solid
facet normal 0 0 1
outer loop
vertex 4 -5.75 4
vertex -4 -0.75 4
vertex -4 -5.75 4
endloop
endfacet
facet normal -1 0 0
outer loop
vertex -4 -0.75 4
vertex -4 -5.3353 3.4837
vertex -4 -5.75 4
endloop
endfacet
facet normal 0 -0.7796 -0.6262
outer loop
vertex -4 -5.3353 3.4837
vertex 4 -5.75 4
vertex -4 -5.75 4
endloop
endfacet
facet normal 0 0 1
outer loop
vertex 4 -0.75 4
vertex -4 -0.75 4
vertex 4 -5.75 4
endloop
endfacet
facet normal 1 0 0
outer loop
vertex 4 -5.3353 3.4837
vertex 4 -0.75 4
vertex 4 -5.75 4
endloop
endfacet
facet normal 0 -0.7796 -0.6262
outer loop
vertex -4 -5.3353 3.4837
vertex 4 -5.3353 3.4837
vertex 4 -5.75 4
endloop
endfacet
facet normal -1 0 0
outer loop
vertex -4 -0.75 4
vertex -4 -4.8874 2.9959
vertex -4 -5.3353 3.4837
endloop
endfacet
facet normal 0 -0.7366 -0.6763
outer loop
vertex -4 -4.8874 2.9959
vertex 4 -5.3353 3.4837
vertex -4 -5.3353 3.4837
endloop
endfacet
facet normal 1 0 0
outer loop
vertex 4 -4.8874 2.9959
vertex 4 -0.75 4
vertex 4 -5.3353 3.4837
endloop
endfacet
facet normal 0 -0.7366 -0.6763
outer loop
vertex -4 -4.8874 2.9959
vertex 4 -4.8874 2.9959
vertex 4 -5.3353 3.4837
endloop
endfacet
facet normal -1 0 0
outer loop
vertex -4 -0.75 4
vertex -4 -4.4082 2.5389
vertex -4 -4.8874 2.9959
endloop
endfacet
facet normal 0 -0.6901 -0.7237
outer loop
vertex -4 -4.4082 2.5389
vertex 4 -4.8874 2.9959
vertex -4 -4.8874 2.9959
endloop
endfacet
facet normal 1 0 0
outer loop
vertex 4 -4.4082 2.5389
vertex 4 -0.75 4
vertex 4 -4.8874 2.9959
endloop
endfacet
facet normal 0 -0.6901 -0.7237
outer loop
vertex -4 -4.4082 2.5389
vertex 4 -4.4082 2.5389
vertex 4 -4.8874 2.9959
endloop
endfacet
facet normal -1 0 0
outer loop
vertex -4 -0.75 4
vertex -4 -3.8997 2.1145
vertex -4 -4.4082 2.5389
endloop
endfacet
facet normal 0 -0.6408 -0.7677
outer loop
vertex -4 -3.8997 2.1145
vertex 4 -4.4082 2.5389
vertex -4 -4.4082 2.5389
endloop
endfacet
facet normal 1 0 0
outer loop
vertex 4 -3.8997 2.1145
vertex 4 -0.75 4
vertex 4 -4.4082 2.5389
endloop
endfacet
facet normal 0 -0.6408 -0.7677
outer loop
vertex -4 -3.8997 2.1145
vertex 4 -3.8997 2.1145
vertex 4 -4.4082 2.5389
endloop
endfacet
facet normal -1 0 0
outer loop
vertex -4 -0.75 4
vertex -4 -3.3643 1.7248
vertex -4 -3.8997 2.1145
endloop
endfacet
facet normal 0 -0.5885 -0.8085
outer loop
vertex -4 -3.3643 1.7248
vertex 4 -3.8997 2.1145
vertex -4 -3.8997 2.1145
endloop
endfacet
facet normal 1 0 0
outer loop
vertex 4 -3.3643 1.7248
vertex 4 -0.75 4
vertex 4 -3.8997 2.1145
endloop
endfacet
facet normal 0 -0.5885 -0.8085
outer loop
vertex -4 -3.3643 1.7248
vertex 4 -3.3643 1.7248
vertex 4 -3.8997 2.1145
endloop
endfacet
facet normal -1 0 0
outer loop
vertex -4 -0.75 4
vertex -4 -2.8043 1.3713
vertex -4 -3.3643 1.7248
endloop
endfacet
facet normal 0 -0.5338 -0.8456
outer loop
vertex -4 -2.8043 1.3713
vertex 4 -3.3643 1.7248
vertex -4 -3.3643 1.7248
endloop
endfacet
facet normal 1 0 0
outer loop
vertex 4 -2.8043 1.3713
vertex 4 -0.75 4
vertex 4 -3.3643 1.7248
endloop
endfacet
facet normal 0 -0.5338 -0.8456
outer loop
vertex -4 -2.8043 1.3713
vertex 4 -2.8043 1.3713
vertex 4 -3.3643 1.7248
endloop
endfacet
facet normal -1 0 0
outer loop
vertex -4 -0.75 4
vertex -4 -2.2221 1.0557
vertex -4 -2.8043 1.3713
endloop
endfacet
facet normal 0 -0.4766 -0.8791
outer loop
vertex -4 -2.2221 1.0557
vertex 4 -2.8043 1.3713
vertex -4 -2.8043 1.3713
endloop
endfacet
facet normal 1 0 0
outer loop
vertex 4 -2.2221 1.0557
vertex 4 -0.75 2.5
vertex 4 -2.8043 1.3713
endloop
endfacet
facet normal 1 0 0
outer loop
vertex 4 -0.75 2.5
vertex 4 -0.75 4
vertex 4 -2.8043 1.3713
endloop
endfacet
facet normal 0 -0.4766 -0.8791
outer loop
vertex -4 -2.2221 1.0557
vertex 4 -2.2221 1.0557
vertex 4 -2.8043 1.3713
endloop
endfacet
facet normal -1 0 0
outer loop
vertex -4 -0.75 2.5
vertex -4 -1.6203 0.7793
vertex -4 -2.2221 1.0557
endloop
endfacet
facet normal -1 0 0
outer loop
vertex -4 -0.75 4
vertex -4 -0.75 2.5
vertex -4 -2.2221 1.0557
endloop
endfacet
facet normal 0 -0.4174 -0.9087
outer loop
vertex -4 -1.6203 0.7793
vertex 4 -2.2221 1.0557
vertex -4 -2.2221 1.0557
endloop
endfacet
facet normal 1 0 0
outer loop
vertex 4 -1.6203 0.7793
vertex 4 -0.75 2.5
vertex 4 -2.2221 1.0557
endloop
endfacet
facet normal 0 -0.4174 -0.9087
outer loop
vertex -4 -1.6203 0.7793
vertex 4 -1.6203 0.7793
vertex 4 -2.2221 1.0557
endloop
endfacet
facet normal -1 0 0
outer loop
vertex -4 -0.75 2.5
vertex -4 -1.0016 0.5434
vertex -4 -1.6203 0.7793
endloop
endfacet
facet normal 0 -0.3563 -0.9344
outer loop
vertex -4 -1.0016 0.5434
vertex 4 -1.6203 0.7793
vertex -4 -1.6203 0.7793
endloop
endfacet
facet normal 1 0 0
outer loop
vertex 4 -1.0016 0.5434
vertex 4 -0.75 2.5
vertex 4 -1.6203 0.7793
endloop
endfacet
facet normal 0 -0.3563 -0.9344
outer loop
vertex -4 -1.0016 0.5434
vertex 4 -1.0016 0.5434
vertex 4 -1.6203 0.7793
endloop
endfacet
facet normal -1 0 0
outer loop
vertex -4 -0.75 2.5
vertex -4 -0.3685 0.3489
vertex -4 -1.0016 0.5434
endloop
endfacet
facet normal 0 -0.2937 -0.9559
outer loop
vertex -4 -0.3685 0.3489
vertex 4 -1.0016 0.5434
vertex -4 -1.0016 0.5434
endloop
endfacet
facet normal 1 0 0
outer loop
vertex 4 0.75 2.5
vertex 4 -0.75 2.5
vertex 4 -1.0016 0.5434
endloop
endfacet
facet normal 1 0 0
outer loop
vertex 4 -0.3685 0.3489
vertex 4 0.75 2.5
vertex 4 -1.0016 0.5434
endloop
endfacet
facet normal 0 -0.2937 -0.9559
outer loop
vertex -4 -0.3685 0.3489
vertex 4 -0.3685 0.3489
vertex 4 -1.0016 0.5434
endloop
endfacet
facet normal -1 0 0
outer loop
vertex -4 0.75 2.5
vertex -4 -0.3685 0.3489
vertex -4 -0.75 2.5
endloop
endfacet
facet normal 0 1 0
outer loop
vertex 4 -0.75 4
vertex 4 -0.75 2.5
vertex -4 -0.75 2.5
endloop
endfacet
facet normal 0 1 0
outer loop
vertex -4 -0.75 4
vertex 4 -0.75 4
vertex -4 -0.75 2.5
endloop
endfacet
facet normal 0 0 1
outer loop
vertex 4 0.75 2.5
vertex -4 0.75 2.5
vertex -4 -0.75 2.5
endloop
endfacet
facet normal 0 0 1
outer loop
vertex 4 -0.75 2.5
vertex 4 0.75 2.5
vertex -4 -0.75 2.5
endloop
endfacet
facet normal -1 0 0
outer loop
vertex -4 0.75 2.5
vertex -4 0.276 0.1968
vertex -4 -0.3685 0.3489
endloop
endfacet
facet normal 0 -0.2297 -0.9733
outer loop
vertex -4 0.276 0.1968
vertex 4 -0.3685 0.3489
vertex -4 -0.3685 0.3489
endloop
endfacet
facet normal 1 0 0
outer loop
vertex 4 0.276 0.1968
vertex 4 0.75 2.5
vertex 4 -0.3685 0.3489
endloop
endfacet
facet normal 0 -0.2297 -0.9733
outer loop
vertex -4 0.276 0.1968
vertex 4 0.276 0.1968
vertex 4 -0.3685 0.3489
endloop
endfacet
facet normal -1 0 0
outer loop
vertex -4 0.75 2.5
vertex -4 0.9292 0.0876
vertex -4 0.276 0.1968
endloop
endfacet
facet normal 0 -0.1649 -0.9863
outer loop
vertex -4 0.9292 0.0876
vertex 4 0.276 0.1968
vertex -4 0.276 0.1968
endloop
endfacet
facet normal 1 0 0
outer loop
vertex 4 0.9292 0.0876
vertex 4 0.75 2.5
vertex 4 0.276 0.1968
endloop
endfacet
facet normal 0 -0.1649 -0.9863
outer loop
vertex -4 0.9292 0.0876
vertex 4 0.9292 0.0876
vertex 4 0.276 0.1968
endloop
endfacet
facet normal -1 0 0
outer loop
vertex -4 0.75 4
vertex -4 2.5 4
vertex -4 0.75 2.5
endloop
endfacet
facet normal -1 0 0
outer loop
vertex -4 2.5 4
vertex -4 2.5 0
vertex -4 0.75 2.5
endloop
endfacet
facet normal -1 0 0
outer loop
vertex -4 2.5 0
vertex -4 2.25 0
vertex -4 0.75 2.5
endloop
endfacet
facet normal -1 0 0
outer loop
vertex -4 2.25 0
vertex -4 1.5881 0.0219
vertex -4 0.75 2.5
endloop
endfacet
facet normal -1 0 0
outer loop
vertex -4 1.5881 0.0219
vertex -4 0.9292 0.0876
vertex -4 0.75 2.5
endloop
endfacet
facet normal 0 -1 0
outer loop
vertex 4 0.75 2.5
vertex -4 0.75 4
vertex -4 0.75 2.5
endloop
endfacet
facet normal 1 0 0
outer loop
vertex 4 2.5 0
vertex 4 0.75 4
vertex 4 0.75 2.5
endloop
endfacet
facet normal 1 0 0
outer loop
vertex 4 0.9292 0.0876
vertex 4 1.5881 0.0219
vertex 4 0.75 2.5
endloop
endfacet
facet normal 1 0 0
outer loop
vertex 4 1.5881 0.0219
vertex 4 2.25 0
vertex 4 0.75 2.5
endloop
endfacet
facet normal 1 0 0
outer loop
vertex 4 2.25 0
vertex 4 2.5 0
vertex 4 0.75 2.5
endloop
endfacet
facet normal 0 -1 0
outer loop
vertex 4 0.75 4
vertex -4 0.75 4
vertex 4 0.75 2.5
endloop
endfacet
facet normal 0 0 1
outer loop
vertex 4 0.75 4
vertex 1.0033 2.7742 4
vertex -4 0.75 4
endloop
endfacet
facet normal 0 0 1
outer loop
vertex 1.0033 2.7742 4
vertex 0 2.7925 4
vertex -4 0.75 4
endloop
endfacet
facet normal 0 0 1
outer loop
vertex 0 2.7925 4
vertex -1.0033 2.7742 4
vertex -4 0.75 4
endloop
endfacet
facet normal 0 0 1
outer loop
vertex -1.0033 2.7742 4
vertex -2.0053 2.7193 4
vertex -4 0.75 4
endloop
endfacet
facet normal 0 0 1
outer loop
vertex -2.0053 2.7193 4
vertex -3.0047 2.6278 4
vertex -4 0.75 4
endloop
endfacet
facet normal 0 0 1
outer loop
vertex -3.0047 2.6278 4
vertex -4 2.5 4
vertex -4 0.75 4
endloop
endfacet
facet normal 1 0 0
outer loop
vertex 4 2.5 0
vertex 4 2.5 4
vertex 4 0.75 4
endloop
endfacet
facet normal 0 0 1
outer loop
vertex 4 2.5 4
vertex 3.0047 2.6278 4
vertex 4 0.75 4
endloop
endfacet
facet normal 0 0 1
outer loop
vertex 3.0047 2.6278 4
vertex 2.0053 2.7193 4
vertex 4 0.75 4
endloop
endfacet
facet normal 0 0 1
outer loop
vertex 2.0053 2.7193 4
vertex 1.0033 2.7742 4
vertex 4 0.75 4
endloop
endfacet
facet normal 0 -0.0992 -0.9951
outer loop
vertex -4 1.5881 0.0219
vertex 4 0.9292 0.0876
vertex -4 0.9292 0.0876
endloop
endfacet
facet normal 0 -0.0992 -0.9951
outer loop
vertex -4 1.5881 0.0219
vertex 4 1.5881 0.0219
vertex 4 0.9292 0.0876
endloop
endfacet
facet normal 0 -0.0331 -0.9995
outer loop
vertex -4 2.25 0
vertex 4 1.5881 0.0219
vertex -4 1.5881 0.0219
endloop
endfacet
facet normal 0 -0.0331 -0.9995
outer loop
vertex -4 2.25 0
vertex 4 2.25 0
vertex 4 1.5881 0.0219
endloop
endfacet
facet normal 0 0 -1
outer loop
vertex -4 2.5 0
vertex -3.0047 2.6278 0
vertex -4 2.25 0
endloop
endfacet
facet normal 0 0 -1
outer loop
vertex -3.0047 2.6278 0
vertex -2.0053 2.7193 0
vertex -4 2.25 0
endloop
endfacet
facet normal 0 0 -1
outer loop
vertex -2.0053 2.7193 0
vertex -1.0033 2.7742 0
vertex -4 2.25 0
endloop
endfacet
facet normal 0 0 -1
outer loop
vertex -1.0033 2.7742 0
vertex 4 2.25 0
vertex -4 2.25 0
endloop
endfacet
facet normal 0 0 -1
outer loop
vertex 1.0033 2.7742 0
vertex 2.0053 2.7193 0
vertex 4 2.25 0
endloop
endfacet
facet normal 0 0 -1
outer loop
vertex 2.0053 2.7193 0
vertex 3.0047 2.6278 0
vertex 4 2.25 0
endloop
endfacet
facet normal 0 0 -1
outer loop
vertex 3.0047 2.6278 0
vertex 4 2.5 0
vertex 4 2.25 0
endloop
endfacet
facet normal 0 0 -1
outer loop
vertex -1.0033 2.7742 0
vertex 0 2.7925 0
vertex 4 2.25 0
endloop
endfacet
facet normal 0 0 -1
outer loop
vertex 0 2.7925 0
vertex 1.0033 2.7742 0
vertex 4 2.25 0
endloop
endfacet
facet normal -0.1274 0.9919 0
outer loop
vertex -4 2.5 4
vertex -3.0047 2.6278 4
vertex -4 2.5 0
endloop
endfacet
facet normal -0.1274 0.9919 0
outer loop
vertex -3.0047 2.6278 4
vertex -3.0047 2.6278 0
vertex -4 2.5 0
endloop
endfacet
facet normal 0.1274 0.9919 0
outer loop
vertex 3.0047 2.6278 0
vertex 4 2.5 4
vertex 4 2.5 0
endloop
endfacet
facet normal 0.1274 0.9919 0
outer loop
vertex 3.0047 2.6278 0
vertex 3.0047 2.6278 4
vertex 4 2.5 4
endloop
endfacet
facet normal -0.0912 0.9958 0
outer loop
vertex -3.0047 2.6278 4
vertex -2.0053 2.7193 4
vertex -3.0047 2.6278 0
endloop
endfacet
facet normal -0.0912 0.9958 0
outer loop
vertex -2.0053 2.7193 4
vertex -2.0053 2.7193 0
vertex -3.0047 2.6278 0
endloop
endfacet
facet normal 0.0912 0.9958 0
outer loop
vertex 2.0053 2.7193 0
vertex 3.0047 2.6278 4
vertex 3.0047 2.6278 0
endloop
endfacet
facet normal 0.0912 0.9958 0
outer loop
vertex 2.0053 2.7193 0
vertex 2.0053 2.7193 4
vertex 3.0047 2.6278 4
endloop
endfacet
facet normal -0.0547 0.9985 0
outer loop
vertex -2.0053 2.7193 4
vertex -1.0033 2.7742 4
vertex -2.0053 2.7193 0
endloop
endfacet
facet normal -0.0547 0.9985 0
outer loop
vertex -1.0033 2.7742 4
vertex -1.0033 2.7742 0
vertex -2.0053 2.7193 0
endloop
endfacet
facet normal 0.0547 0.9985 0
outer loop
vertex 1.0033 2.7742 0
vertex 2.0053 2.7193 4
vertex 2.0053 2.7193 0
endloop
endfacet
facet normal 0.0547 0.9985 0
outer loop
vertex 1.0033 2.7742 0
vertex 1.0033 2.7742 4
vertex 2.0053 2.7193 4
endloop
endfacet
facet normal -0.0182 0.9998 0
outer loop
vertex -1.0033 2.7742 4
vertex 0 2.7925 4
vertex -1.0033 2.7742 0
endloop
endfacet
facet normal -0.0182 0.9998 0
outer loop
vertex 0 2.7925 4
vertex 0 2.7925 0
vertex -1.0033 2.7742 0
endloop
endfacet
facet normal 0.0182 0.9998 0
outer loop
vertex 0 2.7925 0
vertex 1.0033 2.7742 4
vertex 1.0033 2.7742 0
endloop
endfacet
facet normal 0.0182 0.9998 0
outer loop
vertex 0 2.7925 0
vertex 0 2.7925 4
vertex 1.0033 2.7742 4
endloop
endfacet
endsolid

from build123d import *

# Parameters (mm, degrees)
CROQUIS1_W              = 8
CROQUIS1_H              = 5
SALIENTE_EXTRUIR1_DEPTH = 4
CROQUIS2_W              = 8
CROQUIS2_H              = 1.5
CORTAR_EXTRUIR1_DEPTH   = 1.5
CROQUIS3_W              = 8
CROQUIS3_H              = 5
SALIENTE_EXTRUIR2_DEPTH = 4
REDONDEO1_R             = 10


with BuildPart() as part:
    # Croquis1 → Saliente-Extruir1 (new body)
    with BuildSketch(Plane.XY):
        Rectangle(CROQUIS1_W, CROQUIS1_H)
    extrude(amount=SALIENTE_EXTRUIR1_DEPTH)

    # Croquis2 → Cortar-Extruir1 (cut)
    with BuildSketch(Plane.XY.offset(4)):
        Rectangle(CROQUIS2_W, CROQUIS2_H)
    extrude(amount=-CORTAR_EXTRUIR1_DEPTH, mode=Mode.SUBTRACT)

    # Croquis3 → Saliente-Extruir2 (add)
    with BuildSketch(Plane.XY.offset(4)):
        with BuildLine():
            Line((-4, 2.5), (4, 2.5))
            ThreePointArc((4, 2.5), (0, 2.792464279), (-4, 2.5))
        make_face()
        with Locations((0, -3.25)):
            Rectangle(CROQUIS3_W, CROQUIS3_H)
    extrude(amount=-SALIENTE_EXTRUIR2_DEPTH)

    # Redondeo1
    # the kernel refuses this fillet: 10 mm, written as the material it takes off along each edge
    with BuildSketch(Plane(origin=(24, -5.75, 0), x_dir=(0, 0, 1), z_dir=(-1, 0, 0))) as redondeo1_piece_1:
        with BuildLine():
            CenterArc((10, 8), REDONDEO1_R, 180, 53.130102354)
            Line((0, 8), (-0.2, 8))
            Line((-0.2, 8), (-0.2, 0))
            Line((-0.2, 0), (0, -0.2))
            ThreePointArc((0, -0.2), (2, -0.2), (3.88, -0.16))
            Line((3.88, -0.16), (4, 0))
        make_face()
    extrude(amount=48, mode=Mode.SUBTRACT)


solid = part.part
